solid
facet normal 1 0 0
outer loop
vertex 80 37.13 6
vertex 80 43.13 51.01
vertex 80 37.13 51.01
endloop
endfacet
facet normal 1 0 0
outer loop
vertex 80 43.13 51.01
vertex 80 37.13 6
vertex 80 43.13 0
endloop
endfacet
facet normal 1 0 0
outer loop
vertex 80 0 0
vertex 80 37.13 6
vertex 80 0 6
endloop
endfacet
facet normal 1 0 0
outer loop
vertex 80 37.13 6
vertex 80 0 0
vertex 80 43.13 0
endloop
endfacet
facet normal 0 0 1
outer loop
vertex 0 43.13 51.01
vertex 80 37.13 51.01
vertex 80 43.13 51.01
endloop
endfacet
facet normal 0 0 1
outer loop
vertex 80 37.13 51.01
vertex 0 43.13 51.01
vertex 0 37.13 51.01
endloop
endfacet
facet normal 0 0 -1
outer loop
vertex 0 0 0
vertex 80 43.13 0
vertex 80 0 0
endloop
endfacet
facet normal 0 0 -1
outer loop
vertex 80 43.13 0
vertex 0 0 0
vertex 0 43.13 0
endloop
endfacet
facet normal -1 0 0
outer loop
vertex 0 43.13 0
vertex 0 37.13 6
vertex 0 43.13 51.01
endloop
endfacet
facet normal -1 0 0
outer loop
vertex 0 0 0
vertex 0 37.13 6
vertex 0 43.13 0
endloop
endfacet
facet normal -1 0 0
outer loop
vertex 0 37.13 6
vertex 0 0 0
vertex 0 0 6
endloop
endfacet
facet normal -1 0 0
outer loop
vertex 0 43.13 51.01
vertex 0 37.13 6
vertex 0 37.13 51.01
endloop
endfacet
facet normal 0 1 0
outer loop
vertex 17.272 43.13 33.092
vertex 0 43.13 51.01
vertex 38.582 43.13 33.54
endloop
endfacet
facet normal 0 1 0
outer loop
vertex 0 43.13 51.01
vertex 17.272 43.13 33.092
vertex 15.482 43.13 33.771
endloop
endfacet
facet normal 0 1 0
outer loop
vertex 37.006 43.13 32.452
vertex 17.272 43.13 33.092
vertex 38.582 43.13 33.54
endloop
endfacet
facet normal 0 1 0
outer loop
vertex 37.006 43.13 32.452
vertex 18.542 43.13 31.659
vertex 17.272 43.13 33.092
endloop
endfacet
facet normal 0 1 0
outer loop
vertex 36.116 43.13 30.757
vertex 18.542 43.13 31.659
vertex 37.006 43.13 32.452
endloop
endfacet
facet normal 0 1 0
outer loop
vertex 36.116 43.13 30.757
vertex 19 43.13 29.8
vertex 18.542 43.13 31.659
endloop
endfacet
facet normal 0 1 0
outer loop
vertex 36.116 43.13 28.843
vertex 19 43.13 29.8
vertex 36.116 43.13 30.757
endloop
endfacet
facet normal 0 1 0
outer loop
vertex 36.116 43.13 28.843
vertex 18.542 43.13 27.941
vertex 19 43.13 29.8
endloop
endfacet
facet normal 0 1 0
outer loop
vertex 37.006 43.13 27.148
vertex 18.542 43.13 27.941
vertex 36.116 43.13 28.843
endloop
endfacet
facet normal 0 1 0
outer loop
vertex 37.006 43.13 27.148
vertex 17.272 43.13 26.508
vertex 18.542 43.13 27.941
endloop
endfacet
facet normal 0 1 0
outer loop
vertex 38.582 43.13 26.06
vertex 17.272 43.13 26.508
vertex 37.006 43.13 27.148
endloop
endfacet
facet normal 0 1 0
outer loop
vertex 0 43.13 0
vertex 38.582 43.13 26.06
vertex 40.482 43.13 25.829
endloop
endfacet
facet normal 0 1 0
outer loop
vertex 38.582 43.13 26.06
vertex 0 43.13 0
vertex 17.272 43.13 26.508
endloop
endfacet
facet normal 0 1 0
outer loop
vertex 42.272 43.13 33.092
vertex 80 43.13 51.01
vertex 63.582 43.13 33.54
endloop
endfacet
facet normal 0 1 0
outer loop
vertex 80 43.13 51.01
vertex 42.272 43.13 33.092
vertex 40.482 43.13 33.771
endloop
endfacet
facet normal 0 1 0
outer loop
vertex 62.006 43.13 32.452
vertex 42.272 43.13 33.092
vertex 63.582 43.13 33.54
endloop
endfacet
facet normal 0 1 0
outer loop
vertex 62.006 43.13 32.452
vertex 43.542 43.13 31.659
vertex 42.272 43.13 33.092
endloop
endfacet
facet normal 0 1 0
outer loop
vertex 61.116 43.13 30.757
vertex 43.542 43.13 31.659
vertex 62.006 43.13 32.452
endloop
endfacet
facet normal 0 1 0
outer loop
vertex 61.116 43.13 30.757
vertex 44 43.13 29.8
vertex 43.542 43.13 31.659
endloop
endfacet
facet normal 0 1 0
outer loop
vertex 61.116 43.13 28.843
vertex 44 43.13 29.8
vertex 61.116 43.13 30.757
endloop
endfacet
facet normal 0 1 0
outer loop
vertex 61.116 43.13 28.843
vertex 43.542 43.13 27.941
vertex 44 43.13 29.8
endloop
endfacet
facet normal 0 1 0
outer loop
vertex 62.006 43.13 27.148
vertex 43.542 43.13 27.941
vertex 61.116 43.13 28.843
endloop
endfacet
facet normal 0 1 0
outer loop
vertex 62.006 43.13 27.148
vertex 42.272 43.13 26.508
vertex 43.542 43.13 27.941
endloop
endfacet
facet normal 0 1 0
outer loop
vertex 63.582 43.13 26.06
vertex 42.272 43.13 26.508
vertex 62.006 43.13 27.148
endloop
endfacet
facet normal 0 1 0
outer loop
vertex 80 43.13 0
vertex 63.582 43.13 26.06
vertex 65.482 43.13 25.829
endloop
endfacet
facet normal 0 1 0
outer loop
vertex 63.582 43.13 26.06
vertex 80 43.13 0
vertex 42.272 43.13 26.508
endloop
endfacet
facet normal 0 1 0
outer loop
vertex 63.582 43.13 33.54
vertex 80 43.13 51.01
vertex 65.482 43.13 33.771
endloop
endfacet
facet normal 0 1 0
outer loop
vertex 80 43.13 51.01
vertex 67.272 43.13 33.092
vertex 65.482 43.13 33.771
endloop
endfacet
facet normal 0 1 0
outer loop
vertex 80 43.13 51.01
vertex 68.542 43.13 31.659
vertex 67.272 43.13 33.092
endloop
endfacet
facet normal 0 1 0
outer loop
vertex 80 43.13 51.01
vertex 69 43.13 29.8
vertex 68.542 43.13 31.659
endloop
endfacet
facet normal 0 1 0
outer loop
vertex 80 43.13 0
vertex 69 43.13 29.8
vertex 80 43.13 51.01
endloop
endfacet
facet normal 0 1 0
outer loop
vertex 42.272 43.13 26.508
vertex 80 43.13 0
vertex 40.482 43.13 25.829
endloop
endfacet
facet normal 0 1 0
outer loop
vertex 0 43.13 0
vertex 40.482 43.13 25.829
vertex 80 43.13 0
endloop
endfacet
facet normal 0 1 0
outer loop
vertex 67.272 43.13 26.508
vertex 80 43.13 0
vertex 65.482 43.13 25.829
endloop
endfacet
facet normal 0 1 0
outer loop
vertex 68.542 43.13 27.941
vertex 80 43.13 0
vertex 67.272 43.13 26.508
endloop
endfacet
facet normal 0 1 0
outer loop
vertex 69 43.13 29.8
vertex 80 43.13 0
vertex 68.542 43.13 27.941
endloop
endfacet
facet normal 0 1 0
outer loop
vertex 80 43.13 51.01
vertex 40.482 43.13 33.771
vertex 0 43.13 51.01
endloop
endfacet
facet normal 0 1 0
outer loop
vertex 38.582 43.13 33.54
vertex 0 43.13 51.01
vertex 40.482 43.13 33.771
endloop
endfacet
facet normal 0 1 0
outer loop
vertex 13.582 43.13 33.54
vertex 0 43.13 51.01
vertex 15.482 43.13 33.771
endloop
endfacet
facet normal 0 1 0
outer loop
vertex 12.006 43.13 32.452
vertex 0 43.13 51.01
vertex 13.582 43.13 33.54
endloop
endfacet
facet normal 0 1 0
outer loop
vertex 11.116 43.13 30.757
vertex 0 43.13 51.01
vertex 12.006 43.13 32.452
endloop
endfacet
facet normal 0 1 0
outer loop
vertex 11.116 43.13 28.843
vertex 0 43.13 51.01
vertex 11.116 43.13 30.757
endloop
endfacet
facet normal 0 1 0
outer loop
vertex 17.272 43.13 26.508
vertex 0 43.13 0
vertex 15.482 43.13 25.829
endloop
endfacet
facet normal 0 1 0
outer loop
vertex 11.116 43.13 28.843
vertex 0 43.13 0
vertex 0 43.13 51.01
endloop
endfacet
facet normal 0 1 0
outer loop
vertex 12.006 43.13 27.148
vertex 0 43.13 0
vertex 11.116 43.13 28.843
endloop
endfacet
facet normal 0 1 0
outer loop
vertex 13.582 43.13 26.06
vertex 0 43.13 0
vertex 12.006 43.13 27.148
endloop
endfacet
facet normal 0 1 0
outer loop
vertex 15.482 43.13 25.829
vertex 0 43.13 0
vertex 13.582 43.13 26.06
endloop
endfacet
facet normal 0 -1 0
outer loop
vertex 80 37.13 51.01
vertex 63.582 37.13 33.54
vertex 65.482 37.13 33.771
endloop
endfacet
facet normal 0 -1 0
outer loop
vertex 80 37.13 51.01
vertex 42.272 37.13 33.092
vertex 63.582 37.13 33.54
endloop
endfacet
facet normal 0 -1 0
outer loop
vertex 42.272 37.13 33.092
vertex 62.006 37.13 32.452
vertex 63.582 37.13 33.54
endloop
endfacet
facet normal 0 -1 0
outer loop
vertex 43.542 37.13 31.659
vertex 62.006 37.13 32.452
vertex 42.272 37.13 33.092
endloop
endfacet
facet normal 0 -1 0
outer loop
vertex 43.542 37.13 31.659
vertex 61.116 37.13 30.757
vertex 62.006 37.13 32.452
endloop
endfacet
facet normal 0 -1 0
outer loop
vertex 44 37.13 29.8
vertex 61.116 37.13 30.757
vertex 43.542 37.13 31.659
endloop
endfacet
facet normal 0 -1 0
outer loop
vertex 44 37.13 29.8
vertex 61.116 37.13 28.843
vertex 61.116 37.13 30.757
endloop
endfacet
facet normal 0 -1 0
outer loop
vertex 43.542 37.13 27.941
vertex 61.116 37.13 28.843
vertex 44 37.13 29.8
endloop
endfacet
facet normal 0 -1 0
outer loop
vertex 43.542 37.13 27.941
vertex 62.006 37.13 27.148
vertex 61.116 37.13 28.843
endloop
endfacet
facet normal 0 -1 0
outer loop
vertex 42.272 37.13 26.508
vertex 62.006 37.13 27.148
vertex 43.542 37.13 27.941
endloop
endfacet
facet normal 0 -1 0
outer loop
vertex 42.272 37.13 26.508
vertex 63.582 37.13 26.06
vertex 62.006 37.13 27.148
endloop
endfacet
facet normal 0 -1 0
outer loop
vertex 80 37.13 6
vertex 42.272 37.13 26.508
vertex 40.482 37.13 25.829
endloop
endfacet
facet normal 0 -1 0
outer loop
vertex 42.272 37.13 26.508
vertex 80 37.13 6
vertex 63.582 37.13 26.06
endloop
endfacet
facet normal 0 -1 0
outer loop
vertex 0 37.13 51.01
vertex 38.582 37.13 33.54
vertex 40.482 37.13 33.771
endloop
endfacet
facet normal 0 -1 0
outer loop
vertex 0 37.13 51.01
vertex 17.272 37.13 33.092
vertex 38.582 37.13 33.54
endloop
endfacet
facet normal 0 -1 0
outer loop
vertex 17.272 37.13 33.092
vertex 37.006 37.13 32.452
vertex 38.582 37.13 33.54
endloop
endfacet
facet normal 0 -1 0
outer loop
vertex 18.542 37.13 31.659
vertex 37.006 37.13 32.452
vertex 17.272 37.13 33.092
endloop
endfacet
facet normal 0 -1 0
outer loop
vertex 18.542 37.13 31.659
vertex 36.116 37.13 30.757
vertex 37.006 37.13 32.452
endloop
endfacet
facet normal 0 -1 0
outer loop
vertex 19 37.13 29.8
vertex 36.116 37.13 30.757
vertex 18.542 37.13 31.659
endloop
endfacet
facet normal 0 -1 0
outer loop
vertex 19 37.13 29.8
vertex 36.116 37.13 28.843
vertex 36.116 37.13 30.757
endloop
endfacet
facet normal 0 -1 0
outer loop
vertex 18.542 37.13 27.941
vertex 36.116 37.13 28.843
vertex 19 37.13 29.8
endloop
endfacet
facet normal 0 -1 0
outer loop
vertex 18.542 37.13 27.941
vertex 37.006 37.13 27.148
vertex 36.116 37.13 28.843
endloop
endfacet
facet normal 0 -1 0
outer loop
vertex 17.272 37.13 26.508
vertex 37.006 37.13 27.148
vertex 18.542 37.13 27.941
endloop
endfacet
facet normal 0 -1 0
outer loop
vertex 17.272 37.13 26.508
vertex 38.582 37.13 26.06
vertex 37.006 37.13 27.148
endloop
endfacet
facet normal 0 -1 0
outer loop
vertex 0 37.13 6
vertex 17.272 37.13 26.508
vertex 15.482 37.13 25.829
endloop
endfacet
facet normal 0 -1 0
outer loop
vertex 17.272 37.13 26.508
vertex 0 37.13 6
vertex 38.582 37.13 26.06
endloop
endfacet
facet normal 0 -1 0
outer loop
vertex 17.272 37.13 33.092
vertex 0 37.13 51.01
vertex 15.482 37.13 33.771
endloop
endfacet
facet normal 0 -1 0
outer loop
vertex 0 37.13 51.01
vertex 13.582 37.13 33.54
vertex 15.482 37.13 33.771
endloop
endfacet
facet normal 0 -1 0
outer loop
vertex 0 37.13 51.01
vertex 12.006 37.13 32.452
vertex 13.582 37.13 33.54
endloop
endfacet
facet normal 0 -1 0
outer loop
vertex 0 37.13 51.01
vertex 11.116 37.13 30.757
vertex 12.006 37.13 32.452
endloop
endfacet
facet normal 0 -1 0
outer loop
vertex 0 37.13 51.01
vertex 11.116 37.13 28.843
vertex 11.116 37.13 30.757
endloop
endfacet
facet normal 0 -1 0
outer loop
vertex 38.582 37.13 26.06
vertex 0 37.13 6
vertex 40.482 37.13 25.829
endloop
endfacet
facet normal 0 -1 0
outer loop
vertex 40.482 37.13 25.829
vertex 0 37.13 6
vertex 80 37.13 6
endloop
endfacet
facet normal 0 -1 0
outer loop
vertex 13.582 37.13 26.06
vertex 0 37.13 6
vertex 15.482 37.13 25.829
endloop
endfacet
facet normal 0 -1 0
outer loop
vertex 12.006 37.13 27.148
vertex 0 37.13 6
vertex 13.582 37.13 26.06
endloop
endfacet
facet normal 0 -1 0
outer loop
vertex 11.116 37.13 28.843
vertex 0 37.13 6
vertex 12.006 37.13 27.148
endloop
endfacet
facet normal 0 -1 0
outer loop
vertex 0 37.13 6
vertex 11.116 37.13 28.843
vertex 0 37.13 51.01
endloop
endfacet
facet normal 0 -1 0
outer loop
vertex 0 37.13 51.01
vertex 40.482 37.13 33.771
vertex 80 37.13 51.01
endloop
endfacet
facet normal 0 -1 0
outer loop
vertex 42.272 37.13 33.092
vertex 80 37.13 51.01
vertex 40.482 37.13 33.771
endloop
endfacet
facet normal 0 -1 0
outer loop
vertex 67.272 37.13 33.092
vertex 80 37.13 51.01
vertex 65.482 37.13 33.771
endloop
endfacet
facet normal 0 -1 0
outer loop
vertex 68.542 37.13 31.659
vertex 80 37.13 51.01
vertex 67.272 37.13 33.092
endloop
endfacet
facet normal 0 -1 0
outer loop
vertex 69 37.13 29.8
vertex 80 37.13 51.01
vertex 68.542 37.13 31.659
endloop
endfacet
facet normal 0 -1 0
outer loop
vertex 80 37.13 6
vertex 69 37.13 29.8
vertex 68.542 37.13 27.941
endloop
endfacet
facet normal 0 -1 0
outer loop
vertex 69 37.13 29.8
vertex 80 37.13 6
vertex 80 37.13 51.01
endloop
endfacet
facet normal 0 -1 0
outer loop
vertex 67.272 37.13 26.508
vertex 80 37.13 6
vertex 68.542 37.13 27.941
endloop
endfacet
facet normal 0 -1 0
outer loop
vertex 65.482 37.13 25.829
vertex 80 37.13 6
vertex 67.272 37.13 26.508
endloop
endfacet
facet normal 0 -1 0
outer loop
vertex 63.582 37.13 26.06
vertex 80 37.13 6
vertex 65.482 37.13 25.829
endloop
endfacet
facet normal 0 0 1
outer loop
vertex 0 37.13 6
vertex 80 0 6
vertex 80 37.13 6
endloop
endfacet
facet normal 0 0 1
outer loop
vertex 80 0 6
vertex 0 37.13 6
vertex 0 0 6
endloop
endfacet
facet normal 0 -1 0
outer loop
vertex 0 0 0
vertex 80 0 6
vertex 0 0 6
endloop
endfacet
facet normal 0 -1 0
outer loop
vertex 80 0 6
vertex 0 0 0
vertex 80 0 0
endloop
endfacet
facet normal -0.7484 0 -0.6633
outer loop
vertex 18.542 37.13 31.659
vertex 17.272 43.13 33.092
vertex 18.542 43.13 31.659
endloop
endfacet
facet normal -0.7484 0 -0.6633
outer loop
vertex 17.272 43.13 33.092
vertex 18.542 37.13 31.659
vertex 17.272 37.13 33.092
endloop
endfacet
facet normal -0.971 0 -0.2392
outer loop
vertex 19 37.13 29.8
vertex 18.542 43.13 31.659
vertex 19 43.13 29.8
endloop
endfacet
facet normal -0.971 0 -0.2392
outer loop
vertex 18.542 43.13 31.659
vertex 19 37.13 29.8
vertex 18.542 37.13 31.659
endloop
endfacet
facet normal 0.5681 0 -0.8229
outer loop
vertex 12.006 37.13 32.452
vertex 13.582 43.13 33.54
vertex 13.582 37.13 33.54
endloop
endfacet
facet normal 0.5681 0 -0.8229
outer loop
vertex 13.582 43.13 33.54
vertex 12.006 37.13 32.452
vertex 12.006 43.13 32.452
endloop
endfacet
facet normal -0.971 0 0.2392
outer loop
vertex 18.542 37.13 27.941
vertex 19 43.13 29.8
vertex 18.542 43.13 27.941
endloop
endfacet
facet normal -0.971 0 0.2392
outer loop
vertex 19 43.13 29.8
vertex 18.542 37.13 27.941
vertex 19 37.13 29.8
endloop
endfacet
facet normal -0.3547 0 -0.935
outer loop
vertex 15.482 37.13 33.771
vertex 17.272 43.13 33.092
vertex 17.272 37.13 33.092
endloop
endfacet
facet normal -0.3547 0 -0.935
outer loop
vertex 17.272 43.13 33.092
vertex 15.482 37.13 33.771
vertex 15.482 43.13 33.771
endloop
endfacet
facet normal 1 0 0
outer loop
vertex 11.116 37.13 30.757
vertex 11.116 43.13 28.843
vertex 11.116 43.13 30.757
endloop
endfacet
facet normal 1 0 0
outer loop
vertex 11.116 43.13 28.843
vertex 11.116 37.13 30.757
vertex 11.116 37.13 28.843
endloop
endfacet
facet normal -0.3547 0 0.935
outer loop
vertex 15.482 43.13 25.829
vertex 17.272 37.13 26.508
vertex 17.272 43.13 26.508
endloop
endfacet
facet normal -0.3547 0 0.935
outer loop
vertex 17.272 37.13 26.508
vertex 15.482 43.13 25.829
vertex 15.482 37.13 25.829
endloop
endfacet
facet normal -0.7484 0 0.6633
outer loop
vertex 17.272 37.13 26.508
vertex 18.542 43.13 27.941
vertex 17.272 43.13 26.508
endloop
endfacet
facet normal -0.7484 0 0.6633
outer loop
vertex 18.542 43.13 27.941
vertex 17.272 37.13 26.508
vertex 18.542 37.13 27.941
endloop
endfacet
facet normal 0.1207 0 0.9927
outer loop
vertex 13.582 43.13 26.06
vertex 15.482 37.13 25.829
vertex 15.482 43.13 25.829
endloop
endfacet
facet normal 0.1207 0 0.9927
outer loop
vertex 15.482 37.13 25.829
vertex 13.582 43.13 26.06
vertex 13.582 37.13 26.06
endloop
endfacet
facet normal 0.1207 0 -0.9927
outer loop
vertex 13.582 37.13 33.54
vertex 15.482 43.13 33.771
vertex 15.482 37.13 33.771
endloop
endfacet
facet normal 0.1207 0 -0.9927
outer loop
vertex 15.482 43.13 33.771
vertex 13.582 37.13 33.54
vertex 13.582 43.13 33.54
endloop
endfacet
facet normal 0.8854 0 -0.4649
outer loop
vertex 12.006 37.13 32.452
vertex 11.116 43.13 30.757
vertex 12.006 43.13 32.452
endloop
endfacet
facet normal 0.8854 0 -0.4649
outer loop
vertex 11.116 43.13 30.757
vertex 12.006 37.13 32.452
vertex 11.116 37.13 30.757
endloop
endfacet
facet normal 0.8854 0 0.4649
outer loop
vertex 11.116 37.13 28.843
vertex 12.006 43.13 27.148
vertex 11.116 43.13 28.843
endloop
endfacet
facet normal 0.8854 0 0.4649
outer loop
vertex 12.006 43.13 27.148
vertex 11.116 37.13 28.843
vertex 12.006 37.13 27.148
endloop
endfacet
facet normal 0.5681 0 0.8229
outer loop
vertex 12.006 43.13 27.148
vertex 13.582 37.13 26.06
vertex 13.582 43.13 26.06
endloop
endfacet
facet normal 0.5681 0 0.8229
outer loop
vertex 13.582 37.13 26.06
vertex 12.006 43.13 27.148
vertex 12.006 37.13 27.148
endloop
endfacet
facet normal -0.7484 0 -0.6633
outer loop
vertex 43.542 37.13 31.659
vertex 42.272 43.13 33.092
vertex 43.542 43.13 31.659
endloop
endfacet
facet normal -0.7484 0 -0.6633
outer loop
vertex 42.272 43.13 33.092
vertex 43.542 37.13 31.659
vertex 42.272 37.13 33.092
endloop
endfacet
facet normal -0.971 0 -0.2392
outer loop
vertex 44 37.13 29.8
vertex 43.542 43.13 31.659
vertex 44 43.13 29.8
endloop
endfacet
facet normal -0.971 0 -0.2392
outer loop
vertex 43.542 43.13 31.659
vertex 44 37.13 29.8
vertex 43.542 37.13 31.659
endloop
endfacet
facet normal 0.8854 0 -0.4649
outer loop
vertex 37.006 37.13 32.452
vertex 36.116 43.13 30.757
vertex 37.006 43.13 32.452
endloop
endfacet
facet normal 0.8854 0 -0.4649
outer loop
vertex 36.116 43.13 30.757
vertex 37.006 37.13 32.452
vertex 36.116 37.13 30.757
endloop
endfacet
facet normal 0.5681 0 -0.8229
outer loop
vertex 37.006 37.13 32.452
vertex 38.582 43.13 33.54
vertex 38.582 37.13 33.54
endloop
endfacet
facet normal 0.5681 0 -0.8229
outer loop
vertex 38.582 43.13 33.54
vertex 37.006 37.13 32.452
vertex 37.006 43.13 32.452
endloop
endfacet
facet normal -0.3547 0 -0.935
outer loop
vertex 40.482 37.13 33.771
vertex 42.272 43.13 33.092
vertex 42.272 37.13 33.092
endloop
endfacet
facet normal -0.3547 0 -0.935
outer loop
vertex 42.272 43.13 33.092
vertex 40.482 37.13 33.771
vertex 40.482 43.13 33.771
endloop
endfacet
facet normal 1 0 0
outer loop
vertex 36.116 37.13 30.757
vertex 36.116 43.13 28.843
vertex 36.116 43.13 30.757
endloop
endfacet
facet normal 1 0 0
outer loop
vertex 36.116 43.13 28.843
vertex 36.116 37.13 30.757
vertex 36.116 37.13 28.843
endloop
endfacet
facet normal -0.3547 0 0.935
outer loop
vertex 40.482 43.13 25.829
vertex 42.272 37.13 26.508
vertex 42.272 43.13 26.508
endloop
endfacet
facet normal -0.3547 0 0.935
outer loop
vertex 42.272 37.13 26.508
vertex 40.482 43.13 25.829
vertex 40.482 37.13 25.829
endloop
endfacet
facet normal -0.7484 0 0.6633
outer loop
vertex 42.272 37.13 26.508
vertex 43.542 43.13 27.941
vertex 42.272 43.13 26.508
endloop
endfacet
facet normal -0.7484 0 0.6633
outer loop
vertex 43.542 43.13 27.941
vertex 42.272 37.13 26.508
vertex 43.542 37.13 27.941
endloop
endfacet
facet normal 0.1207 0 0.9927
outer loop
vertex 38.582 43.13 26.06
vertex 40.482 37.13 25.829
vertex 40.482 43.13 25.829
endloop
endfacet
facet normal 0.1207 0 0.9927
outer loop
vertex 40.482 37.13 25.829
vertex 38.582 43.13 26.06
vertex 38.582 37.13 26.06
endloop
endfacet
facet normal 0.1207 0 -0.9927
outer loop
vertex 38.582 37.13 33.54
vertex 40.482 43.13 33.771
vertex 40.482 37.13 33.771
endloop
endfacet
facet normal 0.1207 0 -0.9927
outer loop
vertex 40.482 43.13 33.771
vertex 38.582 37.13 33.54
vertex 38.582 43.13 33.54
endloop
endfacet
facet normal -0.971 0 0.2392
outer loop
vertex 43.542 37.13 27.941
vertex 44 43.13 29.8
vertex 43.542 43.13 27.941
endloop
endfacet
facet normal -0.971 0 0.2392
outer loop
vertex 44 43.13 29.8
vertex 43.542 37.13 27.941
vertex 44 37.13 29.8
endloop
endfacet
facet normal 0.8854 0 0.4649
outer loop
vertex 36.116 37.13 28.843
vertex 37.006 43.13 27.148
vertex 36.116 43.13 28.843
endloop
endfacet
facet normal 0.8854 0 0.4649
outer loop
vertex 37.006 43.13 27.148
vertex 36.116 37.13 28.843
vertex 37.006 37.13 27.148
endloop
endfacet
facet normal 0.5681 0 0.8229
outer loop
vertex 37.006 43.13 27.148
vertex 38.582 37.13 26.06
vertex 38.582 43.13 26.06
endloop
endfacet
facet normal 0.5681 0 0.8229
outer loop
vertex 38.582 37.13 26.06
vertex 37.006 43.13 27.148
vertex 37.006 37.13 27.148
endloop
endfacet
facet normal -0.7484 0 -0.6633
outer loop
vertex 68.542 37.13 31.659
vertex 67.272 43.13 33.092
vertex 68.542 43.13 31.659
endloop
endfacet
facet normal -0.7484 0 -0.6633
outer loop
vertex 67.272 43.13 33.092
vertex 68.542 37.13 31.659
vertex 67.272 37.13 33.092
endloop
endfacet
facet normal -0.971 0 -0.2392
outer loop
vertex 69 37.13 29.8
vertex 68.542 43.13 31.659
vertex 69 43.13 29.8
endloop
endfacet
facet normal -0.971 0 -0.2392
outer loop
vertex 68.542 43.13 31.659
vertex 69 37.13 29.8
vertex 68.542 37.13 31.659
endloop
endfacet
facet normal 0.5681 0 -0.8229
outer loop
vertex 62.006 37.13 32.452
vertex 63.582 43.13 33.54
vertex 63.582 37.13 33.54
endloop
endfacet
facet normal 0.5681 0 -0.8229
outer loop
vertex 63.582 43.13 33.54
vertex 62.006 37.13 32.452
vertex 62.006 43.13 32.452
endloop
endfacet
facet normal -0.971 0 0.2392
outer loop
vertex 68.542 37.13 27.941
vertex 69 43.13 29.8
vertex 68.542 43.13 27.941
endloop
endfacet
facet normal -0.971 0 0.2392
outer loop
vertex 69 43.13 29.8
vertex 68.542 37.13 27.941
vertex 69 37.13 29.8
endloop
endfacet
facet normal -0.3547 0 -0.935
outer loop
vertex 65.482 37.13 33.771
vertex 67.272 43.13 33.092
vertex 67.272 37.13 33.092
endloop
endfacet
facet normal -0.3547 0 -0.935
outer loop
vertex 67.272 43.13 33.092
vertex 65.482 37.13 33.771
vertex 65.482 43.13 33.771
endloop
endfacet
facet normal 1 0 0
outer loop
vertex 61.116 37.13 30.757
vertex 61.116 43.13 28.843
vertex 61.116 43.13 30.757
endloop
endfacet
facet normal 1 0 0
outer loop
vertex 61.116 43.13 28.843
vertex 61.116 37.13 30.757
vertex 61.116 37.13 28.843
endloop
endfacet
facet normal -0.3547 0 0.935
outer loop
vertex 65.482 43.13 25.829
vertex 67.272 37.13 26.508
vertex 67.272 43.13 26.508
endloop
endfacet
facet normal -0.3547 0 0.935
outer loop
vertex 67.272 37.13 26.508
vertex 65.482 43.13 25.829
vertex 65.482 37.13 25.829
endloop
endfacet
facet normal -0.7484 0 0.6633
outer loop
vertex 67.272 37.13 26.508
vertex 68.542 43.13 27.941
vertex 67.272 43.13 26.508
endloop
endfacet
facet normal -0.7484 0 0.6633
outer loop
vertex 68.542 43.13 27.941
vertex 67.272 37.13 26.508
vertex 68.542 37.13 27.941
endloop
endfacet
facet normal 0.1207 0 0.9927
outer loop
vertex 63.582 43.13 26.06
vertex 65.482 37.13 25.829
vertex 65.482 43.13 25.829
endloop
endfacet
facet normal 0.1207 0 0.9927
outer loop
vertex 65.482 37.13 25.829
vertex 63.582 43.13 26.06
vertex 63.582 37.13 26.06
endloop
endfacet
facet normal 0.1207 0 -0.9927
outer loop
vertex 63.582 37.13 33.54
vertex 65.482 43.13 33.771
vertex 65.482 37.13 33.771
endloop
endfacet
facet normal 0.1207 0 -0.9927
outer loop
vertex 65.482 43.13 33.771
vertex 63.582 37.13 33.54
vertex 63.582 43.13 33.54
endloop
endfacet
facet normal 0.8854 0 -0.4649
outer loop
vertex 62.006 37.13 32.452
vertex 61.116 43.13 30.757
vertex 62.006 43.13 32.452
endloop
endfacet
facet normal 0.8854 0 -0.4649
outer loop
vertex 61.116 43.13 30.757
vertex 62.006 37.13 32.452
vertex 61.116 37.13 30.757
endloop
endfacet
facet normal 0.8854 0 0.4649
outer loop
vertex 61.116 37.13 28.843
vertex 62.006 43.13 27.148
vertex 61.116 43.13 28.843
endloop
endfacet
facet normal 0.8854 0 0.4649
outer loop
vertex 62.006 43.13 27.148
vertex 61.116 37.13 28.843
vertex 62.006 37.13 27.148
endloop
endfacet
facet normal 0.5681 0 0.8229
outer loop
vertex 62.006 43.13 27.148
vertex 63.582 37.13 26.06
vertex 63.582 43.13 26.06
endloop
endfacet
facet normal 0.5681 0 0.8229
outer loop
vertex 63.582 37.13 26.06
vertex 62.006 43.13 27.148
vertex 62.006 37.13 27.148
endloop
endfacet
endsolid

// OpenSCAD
/* doodle-meta {"version":1,"parameters":{"width":{"label":"Overall width","description":"Changes the body width","unit":"mm","feature":"body_width"},"depth":{"label":"Overall depth","description":"Changes the body depth","unit":"mm","feature":"body_depth"},"height":{"label":"Overall height","description":"Changes the body height","unit":"mm","feature":"body_height"},"wall_thickness":{"label":"Wall thickness","description":"Thickness of the L-bracket walls","unit":"mm","feature":"wall_thickness"},"hole_diameter":{"label":"Hole diameter","description":"Diameter of the three mounting holes","unit":"mm","feature":"holes"},"hole_spacing":{"label":"Hole spacing","description":"Center-to-center distance between holes","unit":"mm","feature":"holes"}},"features":{"body_width":{"kind":"dimension","axis":"x","label":"Overall width"},"body_depth":{"kind":"dimension","axis":"y","label":"Overall depth"},"body_height":{"kind":"dimension","axis":"z","label":"Overall height"},"wall_thickness":{"kind":"region","label":"Wall thickness","min":[0,0,0],"max":[{"parameter":"wall_thickness","scale":1,"offset":0},{"parameter":"depth","scale":1,"offset":0},{"parameter":"height","scale":1,"offset":0}]},"holes":{"kind":"region","label":"Mounting holes","min":[{"parameter":"width","scale":0.1,"offset":0},{"parameter":"depth","scale":0.5,"offset":0},{"parameter":"height","scale":0.3,"offset":0}],"max":[{"parameter":"width","scale":0.9,"offset":0},{"parameter":"depth","scale":0.5,"offset":0},{"parameter":"height","scale":0.7,"offset":0}]}}} */

// Top-level editable parameters
width = 80.0;
depth = 43.13;
height = 51.01;
wall_thickness = 6.0;
hole_diameter = 8.0;
hole_spacing = 25.0;

// Derived constants (not editable)
eps = 0.1;
hole_count = 3;
hole_z = height * 0.5842; // Derived from front view v=0.4158 -> Z = (1-0.4158)*height

module l_bracket_body() {
    // Vertical wall (back part of the L)
    // Occupies Y from (depth - wall_thickness) to depth
    // Occupies X from 0 to width
    // Occupies Z from 0 to height
    translate([0, depth - wall_thickness, 0])
        cube([width, wall_thickness, height]);

    // Horizontal base (bottom part of the L)
    // Occupies Y from 0 to depth
    // Occupies X from 0 to width
    // Occupies Z from 0 to wall_thickness
    translate([0, 0, 0])
        cube([width, depth, wall_thickness]);
}

module hole_cutter(x_pos) {
    // Cuts through the vertical wall along Y axis
    // The wall is at Y = [depth - wall_thickness, depth]
    // Cutter spans Y from (depth - wall_thickness - eps) to (depth + eps)
    // Centered at Y = depth - wall_thickness/2
    // Rotated 90 deg around X to align cylinder axis with Y
    translate([x_pos, depth - wall_thickness / 2, hole_z])
        rotate([90, 0, 0])
            cylinder(h = wall_thickness + 2 * eps, d = hole_diameter, center = true);
}

module bracket_with_holes() {
    difference() {
        l_bracket_body();
        
        // Generate 3 holes
        // Center hole at width/2
        // Left hole at width/2 - hole_spacing
        // Right hole at width/2 + hole_spacing
        for (i = [-1, 0, 1]) {
            hole_cutter(width / 2 + i * hole_spacing);
        }
    }
}

// Instantiate the design
bracket_with_holes();
